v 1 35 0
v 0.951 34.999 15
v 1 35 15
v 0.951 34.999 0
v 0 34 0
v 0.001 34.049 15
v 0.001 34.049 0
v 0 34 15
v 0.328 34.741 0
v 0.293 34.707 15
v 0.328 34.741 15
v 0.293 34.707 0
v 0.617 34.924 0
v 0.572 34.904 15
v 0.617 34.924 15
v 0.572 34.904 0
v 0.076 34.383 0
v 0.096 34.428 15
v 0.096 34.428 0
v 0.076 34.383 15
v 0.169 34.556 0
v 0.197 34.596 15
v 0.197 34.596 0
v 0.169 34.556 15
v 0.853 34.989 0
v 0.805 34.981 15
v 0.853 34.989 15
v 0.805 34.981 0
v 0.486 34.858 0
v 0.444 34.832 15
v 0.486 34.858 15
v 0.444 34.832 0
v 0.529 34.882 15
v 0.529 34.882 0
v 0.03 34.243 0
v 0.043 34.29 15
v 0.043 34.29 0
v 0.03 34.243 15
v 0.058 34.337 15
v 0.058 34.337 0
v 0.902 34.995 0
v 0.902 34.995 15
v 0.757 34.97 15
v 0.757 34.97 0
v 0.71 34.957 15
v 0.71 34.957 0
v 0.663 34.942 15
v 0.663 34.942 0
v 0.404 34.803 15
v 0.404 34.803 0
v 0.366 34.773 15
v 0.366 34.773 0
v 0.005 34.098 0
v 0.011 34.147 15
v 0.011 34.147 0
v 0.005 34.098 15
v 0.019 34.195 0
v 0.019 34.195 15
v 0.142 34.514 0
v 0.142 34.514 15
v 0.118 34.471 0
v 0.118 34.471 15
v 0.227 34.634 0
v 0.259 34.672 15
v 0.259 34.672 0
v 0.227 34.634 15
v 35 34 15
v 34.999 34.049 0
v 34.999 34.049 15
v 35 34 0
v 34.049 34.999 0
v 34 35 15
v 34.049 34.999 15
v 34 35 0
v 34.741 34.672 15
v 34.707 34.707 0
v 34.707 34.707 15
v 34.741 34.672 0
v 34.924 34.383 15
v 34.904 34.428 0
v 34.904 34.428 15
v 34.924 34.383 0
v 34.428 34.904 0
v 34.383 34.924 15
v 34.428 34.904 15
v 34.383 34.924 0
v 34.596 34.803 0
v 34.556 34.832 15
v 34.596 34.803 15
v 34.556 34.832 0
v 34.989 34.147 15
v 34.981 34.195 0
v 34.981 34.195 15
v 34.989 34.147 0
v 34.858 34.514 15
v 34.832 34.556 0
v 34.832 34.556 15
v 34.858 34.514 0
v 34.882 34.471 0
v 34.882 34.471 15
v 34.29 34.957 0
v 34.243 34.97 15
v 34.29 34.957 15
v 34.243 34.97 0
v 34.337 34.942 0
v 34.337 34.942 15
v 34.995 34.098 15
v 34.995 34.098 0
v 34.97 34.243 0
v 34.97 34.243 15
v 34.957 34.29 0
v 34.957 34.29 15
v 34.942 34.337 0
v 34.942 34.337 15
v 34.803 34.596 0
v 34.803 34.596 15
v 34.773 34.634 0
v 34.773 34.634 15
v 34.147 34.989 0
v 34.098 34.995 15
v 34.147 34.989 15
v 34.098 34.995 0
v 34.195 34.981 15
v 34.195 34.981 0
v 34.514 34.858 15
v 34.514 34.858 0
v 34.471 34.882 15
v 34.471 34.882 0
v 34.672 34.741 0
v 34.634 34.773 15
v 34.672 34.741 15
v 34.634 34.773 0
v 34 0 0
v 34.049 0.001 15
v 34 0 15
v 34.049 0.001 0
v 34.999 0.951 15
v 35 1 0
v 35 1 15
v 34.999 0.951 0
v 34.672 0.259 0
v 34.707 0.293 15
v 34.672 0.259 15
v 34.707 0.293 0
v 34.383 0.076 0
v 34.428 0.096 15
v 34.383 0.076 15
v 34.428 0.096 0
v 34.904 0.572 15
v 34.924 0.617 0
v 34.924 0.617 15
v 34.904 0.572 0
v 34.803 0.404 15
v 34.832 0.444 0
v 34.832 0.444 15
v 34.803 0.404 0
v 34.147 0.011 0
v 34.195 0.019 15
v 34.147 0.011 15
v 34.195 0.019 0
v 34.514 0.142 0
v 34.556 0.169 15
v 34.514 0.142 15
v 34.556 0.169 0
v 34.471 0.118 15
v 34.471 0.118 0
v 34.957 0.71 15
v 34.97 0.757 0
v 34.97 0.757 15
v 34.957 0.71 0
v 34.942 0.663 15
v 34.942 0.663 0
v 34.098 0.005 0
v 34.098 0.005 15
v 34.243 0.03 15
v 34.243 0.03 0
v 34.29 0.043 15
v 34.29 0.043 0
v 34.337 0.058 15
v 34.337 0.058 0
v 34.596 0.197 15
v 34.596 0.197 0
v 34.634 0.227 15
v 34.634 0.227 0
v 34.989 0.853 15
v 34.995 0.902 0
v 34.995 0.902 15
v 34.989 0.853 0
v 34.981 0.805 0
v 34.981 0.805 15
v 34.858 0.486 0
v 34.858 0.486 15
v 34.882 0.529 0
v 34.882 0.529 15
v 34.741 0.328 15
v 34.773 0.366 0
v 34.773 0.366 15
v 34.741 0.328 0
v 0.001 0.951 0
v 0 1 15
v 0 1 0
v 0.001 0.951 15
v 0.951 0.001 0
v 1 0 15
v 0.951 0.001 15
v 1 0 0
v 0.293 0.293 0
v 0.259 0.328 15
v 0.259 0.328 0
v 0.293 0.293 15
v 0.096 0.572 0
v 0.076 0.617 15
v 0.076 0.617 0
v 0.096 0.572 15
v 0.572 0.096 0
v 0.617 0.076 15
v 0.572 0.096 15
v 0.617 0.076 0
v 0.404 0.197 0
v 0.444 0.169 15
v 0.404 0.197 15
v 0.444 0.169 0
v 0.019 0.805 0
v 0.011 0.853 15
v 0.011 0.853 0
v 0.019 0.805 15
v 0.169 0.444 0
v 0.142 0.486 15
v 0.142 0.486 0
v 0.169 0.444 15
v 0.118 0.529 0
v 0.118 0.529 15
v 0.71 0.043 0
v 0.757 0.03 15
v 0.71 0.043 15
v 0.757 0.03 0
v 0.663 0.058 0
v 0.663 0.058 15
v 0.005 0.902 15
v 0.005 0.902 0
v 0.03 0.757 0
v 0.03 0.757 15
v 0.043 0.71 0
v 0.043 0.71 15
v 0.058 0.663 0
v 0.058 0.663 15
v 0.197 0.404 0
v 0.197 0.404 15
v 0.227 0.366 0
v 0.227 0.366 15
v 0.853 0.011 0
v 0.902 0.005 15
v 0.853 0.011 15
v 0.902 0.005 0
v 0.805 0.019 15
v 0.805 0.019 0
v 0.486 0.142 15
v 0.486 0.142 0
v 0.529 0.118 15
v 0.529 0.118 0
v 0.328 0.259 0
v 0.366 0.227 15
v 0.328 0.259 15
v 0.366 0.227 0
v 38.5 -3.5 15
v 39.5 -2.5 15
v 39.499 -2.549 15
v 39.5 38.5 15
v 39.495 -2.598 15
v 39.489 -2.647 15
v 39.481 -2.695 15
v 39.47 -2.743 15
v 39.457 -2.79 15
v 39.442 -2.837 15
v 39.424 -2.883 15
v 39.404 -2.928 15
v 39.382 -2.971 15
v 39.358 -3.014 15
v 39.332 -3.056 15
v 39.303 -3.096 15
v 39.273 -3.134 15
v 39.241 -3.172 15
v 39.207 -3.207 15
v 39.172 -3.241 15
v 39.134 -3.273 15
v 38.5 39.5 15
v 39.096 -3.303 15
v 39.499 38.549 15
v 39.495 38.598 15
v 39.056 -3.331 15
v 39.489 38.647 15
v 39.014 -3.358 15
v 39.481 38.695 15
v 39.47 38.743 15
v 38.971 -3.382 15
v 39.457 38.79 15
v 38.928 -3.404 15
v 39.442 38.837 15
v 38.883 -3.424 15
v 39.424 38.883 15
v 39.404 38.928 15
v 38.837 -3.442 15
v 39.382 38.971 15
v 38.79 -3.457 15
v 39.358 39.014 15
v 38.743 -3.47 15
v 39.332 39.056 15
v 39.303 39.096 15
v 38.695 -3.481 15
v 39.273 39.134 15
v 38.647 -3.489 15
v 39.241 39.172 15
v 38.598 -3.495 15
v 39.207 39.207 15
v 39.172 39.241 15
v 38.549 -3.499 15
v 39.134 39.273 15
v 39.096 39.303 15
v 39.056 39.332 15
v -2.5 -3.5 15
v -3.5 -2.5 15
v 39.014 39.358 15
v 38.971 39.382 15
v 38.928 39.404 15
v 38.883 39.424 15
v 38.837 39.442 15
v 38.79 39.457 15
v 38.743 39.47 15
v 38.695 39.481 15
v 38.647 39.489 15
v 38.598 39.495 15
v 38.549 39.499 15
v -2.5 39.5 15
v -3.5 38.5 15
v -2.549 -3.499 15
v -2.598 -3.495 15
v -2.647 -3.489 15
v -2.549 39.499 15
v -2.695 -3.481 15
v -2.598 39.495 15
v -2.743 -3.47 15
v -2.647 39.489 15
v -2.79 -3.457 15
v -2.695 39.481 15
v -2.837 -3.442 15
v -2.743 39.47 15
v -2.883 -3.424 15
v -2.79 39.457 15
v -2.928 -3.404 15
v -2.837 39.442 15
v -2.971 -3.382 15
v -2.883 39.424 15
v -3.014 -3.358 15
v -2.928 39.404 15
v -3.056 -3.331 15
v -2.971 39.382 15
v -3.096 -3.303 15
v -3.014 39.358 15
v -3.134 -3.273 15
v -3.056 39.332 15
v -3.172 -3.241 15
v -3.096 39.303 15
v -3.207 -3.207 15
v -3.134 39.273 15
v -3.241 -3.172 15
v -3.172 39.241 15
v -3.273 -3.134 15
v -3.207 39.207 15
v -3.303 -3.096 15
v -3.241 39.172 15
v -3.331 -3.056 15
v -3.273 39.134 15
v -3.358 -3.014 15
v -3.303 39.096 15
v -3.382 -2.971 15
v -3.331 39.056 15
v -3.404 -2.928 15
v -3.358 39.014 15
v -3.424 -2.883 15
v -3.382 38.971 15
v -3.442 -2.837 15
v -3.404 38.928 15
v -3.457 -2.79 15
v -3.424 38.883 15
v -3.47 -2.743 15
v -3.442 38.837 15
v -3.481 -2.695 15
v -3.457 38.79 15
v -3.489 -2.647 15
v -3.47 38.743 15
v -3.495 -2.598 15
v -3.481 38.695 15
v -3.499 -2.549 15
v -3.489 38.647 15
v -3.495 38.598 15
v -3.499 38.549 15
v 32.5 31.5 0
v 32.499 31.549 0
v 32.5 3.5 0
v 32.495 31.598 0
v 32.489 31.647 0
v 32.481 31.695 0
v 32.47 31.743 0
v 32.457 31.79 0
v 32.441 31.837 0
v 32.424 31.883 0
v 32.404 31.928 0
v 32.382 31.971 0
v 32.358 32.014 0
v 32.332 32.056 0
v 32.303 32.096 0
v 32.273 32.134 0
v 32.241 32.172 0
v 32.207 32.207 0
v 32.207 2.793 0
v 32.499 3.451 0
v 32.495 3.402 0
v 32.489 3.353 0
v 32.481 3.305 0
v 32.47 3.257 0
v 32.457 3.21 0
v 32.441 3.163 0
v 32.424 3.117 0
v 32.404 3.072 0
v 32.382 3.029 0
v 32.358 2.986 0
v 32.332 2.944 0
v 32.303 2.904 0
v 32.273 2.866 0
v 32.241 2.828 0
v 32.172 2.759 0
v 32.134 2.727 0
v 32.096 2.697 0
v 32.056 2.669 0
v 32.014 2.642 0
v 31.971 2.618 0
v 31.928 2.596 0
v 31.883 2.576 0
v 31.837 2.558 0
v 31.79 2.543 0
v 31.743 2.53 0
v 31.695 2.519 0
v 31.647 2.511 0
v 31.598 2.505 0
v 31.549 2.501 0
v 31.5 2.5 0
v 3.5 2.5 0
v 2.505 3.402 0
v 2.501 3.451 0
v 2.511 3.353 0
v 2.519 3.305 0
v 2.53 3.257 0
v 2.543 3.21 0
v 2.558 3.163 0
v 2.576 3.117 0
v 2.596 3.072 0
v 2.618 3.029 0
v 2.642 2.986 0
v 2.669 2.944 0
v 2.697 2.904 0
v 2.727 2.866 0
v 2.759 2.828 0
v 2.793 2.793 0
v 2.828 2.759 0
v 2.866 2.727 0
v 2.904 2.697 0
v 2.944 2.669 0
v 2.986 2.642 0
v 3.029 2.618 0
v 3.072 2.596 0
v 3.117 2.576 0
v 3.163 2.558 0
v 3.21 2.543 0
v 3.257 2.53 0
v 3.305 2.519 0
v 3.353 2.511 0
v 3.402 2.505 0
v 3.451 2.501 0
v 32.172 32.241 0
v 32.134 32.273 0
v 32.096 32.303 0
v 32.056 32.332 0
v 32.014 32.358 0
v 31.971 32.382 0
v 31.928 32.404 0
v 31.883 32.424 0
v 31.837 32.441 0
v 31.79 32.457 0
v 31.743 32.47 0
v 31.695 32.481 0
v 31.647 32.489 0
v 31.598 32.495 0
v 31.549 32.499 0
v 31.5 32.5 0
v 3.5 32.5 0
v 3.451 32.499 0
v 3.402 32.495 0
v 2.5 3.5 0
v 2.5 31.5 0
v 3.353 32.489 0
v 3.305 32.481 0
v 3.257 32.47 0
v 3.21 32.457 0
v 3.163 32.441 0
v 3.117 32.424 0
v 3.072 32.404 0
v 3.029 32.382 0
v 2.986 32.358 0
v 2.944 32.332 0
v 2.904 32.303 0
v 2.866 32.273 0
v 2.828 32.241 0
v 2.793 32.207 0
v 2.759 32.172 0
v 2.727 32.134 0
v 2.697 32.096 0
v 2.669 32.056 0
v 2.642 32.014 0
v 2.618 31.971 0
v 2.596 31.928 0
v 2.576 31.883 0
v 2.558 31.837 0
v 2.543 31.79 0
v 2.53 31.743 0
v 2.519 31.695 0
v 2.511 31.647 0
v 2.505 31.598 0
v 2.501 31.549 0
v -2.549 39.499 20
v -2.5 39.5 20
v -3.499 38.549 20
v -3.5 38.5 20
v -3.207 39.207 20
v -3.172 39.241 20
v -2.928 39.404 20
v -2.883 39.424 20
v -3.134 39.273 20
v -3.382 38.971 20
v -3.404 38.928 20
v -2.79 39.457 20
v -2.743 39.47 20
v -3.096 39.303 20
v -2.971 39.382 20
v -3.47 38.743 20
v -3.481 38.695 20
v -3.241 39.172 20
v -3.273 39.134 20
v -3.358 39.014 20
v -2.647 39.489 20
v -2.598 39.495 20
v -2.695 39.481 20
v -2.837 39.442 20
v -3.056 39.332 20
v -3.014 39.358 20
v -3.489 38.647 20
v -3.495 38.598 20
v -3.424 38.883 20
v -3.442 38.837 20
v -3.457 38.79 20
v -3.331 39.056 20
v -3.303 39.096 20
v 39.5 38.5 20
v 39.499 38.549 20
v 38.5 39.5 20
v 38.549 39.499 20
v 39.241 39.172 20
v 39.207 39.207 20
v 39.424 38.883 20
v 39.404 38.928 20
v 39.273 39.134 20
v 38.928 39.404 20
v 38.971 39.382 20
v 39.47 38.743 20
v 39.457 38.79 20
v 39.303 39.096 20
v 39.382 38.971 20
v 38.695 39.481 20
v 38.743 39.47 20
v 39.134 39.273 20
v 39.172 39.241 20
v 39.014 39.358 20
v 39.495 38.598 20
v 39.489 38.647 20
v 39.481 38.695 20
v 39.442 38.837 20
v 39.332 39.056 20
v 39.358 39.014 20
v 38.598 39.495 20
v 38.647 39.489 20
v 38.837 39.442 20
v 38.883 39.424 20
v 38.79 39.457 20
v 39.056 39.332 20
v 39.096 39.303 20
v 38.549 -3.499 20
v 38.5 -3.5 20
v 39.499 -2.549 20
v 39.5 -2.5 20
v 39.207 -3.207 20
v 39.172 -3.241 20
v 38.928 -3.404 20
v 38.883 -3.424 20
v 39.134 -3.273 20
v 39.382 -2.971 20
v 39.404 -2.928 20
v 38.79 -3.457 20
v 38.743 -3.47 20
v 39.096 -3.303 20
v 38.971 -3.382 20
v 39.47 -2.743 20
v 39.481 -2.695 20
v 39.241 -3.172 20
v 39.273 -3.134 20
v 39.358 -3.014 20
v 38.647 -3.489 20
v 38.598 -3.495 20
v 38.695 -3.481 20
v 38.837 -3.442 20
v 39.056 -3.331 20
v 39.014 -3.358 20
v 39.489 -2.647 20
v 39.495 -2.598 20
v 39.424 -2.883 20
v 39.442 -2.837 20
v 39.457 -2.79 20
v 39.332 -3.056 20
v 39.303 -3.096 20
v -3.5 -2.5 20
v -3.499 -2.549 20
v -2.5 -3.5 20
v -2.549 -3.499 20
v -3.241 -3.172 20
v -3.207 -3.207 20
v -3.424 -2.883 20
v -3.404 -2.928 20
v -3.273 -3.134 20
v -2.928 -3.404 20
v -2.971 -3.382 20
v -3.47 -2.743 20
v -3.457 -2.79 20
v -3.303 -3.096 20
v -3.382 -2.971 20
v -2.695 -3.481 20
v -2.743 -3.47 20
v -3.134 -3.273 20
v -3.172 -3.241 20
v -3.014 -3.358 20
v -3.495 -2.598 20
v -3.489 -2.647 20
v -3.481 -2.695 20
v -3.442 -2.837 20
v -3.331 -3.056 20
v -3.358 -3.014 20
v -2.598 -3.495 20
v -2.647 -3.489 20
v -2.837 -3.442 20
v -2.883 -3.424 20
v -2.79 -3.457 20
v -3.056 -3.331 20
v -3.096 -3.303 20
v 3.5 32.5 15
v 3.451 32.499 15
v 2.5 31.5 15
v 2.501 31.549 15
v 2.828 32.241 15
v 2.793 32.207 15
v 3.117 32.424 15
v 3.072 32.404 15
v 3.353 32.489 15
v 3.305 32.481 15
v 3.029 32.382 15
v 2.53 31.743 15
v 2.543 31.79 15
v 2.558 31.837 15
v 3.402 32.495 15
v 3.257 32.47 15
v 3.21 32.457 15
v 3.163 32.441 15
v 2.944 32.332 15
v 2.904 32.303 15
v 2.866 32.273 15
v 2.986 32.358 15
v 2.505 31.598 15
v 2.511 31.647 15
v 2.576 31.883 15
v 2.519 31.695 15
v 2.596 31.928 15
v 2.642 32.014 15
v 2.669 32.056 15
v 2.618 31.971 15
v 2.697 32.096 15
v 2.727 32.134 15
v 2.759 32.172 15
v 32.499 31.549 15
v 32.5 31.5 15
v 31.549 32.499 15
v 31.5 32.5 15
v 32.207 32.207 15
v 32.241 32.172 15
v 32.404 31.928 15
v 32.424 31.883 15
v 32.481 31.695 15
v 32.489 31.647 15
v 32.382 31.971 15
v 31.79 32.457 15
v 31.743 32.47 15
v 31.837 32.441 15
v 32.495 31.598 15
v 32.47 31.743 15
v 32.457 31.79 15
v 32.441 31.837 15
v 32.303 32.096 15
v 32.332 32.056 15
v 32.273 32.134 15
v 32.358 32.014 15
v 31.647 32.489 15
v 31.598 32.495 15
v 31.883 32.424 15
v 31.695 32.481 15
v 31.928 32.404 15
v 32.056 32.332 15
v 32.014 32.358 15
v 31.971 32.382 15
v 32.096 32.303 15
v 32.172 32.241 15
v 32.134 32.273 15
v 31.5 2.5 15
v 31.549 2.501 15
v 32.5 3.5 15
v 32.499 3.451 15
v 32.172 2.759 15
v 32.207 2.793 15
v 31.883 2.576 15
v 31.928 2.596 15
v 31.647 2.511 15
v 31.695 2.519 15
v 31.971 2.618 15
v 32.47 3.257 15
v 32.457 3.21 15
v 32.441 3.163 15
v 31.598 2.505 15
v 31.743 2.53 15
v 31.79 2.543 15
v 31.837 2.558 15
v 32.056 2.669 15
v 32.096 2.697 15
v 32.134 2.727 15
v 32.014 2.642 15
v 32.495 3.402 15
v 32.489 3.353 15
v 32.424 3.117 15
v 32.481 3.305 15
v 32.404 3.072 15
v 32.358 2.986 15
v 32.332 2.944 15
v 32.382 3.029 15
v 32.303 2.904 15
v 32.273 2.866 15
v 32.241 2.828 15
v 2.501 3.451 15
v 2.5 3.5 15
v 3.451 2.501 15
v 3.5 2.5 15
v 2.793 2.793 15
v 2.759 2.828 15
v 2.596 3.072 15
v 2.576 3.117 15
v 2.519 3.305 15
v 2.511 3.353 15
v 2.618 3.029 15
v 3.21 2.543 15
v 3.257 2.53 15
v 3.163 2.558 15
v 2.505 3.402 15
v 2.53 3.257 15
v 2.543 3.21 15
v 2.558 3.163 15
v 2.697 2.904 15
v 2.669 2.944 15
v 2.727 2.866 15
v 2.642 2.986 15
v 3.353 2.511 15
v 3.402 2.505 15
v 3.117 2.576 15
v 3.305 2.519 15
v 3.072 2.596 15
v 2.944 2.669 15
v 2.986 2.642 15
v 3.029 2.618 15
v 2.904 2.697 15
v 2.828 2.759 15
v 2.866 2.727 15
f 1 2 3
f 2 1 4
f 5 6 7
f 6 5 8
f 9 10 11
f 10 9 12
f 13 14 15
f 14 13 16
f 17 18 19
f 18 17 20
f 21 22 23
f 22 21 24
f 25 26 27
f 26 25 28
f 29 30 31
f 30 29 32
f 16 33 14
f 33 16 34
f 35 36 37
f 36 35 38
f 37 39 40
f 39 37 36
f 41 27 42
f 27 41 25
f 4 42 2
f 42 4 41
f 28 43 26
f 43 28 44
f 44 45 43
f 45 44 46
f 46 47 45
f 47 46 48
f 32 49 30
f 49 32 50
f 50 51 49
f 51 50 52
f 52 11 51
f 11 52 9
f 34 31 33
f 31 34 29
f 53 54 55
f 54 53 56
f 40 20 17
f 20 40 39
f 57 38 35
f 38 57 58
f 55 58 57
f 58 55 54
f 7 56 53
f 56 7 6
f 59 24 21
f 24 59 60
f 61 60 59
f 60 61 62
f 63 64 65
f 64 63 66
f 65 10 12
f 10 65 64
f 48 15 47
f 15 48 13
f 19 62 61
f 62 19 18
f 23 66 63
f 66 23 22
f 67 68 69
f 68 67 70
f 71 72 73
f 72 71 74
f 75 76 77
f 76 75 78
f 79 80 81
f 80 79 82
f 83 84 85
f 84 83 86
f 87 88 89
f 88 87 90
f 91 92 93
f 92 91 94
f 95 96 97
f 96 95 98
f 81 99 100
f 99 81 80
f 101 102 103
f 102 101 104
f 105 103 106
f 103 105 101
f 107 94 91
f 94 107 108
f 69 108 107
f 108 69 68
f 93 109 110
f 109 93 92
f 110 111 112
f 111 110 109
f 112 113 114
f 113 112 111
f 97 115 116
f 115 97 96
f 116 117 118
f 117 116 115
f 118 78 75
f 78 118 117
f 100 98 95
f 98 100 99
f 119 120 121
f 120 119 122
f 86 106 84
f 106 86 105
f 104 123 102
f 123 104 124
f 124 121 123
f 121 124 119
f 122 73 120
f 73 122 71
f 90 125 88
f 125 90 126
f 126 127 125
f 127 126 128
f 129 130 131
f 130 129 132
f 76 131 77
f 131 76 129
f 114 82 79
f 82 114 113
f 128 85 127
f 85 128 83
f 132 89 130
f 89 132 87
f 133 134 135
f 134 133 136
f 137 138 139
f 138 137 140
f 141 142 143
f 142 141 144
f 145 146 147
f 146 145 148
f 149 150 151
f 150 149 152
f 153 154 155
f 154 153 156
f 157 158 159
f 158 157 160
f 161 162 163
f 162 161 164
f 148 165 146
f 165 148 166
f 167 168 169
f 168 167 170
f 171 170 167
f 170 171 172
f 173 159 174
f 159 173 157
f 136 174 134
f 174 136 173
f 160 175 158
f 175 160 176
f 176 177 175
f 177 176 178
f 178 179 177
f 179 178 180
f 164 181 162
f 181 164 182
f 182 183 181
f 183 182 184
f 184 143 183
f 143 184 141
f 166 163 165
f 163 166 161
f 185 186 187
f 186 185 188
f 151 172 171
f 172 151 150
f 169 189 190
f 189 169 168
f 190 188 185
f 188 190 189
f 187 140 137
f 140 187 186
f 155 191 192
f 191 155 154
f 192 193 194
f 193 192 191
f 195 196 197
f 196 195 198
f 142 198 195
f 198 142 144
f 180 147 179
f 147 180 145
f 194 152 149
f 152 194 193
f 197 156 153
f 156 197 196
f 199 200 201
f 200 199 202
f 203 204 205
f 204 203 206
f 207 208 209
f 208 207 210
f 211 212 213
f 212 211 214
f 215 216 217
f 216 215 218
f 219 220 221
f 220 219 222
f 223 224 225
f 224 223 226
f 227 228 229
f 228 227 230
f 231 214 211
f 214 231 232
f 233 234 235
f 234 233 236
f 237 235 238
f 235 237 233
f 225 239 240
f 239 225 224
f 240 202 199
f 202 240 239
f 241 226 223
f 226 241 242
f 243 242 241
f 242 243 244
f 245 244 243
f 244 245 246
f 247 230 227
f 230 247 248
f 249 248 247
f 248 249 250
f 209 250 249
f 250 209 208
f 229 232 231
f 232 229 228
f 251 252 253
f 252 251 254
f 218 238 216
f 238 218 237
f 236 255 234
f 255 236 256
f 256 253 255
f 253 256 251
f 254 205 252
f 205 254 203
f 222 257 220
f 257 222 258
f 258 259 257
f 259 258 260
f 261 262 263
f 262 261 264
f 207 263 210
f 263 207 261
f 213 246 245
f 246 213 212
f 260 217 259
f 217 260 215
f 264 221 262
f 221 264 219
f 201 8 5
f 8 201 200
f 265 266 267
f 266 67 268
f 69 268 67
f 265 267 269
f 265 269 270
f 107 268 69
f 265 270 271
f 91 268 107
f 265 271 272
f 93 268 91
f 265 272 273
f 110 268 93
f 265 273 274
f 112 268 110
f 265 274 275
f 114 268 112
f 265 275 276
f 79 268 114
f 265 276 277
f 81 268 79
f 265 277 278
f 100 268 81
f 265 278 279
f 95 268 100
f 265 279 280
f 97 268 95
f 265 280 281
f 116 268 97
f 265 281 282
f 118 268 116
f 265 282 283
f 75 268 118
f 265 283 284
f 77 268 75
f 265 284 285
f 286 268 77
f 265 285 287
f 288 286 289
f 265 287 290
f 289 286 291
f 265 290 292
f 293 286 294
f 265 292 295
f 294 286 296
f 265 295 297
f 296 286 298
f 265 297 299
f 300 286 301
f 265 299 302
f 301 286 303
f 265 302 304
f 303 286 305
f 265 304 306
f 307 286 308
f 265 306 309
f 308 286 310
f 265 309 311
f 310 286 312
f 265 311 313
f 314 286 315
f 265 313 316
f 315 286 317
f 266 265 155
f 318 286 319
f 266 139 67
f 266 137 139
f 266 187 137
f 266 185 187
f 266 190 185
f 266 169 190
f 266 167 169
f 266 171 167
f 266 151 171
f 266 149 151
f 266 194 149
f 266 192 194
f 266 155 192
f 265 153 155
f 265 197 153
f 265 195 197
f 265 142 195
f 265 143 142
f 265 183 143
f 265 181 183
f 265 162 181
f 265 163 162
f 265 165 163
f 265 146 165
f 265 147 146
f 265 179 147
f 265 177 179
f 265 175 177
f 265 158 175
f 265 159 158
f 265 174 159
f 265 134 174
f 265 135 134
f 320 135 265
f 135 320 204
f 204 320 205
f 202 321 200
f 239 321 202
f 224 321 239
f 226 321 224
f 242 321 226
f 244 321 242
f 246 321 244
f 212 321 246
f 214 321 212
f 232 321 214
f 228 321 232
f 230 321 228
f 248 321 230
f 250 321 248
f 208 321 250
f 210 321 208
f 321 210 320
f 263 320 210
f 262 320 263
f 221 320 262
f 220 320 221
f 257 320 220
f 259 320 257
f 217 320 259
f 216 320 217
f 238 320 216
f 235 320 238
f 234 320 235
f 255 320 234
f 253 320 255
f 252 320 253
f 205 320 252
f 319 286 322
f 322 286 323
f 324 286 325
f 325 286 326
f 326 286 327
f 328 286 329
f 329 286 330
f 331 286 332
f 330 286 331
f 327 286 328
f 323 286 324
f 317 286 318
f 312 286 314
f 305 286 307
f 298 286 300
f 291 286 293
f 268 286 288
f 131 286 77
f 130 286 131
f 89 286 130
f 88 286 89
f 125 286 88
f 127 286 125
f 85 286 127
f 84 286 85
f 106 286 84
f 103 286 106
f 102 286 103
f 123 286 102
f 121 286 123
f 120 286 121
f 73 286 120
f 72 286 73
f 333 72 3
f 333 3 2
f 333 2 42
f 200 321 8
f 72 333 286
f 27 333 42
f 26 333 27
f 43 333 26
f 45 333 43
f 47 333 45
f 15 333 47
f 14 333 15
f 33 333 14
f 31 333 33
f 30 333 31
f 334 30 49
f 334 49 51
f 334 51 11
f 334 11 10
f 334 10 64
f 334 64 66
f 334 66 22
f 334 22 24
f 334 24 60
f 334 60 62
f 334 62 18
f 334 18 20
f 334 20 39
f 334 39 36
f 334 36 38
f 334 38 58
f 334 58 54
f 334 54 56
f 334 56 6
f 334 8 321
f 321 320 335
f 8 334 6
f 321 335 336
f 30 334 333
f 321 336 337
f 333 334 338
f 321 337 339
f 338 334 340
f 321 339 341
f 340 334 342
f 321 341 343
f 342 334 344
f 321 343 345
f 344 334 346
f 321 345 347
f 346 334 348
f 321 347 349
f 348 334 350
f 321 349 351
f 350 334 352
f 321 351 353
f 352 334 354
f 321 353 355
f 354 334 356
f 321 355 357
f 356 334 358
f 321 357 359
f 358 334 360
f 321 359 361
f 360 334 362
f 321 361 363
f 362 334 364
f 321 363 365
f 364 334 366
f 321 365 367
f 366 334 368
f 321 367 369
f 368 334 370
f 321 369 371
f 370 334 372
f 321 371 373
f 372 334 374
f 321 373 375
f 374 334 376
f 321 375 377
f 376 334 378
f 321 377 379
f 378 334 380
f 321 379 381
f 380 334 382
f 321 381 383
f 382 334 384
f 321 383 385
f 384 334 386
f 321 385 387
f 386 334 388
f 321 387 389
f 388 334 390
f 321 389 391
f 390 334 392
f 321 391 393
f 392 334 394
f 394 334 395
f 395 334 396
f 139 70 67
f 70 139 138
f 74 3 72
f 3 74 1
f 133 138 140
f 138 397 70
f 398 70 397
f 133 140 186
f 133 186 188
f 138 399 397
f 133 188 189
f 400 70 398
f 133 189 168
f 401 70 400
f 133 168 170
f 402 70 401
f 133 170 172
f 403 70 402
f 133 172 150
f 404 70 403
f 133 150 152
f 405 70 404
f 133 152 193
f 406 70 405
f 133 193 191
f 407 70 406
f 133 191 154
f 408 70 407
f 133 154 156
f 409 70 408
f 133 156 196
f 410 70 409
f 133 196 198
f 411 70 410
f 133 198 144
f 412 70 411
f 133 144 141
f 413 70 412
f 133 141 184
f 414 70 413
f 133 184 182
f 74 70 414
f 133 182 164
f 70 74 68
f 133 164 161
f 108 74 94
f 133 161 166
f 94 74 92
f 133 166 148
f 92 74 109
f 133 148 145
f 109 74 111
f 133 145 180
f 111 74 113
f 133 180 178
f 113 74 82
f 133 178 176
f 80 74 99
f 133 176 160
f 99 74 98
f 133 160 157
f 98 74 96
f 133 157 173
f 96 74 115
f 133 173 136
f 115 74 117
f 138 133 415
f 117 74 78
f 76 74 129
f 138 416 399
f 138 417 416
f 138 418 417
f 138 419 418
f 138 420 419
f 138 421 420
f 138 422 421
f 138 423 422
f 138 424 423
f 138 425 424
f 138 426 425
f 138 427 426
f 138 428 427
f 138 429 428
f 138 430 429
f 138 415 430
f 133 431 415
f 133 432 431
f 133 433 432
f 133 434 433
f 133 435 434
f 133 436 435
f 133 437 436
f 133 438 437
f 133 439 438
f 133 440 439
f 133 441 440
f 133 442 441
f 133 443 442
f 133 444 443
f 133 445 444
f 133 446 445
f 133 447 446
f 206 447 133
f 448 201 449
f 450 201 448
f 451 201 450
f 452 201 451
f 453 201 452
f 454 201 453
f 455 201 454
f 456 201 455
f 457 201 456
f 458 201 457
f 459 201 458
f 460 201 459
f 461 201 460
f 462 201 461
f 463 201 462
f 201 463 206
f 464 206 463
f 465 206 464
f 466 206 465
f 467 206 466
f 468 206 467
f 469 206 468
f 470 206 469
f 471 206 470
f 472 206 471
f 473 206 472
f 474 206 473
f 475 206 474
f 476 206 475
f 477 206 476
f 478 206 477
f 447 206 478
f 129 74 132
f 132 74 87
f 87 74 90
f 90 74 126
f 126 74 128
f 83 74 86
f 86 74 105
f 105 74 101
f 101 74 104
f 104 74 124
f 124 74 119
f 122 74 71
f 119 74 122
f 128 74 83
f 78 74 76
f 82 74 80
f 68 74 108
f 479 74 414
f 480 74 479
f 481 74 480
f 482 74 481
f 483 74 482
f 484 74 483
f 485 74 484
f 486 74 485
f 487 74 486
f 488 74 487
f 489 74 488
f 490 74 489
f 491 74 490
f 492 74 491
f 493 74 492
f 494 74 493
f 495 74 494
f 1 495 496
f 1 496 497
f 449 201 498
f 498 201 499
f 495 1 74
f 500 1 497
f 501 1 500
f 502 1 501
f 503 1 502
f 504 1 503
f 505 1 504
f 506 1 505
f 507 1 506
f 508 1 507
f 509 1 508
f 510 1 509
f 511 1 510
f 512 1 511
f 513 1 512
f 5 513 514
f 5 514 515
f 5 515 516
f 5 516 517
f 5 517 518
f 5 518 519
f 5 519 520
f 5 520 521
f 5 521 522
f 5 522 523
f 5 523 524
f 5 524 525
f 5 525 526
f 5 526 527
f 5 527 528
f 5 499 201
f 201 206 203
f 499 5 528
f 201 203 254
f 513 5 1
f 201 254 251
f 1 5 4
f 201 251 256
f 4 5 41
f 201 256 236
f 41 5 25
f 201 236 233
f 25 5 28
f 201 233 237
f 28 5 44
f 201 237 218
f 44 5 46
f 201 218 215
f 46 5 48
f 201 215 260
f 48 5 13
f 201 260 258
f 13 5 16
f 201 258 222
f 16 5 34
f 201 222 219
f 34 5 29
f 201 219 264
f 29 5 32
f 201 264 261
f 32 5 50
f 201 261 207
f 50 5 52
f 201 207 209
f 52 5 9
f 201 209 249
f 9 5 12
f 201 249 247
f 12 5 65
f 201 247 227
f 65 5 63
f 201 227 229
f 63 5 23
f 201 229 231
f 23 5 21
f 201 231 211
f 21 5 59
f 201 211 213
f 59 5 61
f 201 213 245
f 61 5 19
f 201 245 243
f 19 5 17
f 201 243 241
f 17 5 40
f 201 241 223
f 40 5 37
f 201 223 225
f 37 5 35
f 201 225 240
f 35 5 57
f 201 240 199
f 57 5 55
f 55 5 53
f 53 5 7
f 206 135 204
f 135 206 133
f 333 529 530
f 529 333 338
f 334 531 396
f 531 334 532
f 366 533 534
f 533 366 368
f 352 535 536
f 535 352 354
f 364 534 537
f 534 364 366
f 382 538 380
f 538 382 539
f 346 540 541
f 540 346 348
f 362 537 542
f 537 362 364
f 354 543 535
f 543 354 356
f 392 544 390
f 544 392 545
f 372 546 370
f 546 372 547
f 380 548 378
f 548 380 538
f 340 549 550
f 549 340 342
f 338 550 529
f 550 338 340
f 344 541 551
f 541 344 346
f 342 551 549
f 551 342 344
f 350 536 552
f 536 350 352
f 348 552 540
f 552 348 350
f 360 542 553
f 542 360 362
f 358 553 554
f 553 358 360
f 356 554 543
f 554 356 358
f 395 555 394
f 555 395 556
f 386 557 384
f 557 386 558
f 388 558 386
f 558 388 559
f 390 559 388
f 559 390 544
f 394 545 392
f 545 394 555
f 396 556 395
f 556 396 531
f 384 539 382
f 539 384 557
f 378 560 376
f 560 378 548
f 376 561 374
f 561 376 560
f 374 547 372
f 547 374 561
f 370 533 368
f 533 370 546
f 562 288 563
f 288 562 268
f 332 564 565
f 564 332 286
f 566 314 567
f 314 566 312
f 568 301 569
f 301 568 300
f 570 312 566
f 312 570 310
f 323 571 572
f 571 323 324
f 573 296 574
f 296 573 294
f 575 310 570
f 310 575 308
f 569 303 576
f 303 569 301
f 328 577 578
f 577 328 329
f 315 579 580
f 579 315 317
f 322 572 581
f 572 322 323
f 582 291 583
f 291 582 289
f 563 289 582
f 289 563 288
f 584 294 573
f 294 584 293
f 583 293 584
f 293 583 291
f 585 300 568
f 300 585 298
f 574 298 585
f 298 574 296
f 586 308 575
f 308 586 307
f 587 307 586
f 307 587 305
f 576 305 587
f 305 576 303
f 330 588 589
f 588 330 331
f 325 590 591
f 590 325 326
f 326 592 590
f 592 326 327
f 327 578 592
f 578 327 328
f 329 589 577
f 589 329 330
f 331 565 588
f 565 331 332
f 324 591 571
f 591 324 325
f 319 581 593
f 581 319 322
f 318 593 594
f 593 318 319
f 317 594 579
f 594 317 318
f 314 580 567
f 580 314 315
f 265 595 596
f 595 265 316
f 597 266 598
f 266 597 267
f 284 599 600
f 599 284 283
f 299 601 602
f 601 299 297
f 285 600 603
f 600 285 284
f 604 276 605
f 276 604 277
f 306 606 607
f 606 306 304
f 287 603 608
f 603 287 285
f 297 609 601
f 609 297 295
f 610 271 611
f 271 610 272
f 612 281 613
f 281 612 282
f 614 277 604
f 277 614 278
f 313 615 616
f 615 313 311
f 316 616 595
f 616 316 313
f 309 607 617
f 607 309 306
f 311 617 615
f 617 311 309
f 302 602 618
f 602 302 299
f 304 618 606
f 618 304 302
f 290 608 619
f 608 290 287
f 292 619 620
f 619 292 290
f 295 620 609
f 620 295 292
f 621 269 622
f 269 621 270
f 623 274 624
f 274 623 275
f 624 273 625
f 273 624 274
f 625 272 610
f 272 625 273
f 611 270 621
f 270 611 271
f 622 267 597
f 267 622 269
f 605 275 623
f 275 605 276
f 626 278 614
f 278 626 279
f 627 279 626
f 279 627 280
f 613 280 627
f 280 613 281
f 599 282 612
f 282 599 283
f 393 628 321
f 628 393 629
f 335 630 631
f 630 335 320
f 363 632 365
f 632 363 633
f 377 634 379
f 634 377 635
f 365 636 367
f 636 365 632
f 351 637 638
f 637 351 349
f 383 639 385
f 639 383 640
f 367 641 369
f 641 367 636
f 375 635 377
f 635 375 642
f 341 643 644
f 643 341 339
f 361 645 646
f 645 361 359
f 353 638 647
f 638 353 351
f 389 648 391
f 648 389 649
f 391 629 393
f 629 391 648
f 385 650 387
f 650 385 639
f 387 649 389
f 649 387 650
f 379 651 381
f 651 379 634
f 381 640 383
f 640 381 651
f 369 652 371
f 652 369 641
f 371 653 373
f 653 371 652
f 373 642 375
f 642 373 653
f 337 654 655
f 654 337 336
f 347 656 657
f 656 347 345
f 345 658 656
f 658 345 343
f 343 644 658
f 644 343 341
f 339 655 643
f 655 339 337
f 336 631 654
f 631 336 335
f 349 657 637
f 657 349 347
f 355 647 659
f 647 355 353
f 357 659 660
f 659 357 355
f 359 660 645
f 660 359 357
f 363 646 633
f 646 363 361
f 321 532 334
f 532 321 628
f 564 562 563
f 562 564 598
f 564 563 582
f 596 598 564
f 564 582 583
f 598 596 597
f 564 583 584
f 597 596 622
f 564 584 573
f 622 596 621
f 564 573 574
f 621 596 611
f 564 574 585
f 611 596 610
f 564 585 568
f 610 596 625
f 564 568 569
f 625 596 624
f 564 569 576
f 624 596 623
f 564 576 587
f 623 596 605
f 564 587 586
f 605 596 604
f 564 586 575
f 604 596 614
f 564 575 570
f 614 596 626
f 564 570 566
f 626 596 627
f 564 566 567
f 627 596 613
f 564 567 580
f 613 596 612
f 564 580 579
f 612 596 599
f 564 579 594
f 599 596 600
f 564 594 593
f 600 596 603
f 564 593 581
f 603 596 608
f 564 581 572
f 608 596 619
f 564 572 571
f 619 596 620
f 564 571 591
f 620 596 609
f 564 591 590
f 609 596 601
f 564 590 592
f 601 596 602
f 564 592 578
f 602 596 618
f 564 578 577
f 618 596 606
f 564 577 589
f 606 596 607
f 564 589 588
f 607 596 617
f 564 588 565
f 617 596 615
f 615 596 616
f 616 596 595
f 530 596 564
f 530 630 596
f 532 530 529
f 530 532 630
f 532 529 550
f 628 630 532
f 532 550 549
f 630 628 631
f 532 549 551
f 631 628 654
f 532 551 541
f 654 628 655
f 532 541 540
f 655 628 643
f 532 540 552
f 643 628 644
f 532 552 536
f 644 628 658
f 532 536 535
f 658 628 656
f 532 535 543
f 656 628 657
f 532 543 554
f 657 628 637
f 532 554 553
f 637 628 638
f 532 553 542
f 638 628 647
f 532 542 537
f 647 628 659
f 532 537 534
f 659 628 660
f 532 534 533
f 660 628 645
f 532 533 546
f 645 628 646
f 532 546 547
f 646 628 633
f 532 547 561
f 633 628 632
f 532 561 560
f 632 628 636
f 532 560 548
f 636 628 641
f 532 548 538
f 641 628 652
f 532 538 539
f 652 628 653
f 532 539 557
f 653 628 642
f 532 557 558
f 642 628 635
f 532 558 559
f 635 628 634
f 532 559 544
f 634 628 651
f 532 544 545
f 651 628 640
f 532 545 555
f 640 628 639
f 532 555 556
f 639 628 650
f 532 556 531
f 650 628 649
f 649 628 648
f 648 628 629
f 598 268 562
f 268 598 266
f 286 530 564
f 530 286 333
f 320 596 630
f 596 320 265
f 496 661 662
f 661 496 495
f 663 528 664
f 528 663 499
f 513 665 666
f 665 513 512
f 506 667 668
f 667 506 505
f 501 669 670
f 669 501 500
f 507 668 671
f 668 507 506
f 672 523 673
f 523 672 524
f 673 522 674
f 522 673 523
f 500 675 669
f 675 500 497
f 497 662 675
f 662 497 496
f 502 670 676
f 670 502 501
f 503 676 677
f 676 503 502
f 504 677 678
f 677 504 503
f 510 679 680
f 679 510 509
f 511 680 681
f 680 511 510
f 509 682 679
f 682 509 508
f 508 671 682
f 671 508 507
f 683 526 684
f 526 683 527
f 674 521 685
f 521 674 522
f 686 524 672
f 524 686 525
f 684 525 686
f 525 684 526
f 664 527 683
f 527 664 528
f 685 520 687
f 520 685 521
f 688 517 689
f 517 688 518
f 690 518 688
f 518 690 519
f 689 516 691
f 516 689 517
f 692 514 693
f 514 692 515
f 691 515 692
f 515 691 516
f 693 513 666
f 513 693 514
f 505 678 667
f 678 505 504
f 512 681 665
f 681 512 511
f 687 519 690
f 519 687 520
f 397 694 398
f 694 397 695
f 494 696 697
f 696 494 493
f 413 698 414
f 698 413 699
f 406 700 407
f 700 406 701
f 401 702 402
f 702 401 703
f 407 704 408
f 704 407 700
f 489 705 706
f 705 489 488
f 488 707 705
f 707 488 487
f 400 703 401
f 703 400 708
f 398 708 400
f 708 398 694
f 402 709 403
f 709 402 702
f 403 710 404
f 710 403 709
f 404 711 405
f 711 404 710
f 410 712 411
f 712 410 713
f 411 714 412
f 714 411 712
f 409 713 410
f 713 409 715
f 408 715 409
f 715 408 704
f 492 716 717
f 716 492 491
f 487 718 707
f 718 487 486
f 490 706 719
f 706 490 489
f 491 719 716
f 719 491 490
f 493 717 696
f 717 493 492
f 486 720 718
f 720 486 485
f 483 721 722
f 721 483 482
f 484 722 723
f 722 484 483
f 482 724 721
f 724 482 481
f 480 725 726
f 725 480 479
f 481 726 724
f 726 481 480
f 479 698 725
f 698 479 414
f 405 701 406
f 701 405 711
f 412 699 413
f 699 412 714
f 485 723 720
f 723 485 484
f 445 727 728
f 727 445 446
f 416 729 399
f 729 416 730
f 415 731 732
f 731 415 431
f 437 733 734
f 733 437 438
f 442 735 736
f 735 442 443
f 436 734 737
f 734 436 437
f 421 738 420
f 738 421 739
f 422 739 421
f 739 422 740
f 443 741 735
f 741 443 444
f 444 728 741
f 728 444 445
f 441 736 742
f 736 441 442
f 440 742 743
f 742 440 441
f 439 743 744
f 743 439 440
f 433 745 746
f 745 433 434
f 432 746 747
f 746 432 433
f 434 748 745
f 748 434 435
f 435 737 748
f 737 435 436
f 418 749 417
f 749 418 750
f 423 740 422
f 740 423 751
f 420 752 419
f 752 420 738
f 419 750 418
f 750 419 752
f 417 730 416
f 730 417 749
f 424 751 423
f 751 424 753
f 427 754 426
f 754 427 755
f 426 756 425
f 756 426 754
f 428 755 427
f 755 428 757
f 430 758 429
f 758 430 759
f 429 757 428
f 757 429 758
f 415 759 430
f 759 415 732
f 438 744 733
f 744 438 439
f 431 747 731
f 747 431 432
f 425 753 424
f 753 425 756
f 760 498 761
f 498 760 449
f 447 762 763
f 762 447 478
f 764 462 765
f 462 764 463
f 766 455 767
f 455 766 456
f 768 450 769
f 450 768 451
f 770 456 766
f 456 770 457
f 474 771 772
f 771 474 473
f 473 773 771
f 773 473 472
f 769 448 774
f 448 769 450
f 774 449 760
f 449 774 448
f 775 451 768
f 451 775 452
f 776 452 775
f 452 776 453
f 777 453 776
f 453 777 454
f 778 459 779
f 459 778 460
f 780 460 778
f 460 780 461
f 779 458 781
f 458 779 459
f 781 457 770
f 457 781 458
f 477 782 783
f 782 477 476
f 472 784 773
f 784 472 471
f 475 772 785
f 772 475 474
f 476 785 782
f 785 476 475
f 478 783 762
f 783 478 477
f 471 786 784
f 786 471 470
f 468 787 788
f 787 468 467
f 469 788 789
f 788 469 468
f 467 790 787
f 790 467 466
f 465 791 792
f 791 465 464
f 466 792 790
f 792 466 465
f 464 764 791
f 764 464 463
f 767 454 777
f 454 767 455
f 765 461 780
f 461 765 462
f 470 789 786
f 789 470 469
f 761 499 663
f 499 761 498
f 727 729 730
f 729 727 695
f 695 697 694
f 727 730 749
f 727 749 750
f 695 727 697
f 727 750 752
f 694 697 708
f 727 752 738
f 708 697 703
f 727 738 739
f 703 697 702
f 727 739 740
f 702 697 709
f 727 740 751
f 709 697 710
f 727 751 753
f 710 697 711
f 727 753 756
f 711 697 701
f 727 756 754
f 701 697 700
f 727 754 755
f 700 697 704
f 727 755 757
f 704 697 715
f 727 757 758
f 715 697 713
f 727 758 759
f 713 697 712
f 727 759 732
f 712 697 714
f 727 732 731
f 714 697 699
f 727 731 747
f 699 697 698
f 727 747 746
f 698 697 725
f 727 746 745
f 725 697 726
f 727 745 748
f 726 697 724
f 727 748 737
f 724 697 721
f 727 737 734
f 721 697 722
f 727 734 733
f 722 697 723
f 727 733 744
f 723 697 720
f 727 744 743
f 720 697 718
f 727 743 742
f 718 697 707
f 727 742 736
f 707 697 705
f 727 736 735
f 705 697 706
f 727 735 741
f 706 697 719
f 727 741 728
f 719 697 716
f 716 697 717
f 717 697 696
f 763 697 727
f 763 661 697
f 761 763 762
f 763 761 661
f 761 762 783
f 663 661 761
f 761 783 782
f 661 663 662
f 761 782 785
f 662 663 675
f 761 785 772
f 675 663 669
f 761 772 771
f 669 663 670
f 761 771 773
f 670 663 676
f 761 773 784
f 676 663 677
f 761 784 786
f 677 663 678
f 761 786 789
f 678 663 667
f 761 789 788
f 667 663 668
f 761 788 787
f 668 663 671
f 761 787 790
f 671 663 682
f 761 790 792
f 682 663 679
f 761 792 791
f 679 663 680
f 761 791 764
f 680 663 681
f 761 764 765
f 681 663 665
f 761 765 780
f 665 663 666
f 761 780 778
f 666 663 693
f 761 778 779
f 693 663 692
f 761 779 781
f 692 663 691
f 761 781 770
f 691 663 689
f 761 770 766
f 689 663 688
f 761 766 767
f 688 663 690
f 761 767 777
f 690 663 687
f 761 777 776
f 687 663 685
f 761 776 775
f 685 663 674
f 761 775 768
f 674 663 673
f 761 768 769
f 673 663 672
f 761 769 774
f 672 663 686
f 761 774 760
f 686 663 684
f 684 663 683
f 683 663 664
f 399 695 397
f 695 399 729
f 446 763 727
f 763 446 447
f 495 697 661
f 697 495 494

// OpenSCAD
h=15;
difference(){
union(){
translate([0,0,0]) roundedCube([35,35,h],r=1);
translate([-7/2,-7/2,h]) roundedCube([43,43,5],r=1);
//translate([(-7/2)+(35/3),(-7/2)+(35/3),h+5]) #text("PAR");
}
translate([5/2,5/2,-1]) roundedCube([30,30,h+1],r=1);
}



module roundedCube(dim, r=1, x=false, y=false, z=true, xcorners=[true,true,true,true], ycorners=[true,true,true,true], zcorners=[true,true,true,true], $fn=128)
{
	difference()
	{
		cube(dim);

		if(z)
		{
			translate([0, 0, -0.1])
			{
				if(zcorners[0])
					translate([0, dim[1]-r]) { rotateAround([0, 0, 90], [r/2, r/2, 0]) { meniscus(h=dim[2], r=r, fn=$fn); } }
				if(zcorners[1])
					translate([dim[0]-r, dim[1]-r]) { meniscus(h=dim[2], r=r, fn=$fn); }
				if(zcorners[2])
					translate([dim[0]-r, 0]) { rotateAround([0, 0, -90], [r/2, r/2, 0]) { meniscus(h=dim[2], r=r, fn=$fn); } }
				if(zcorners[3])
					rotateAround([0, 0, -180], [r/2, r/2, 0]) { meniscus(h=dim[2], r=r, fn=$fn); }
			}
		}

		if(y)
		{
			translate([0, -0.1, 0])
			{
				if(ycorners[0])
					translate([0, 0, dim[2]-r]) { rotateAround([0, 180, 0], [r/2, 0, r/2]) { rotateAround([-90, 0, 0], [0, r/2, r/2]) { meniscus(h=dim[1], r=r); } } }
				if(ycorners[1])
					translate([dim[0]-r, 0, dim[2]-r]) { rotateAround([0, -90, 0], [r/2, 0, r/2]) { rotateAround([-90, 0, 0], [0, r/2, r/2]) { meniscus(h=dim[1], r=r); } } }
				if(ycorners[2])
					translate([dim[0]-r, 0]) { rotateAround([-90, 0, 0], [0, r/2, r/2]) { meniscus(h=dim[1], r=r); } }
				if(ycorners[3])
					rotateAround([0, 90, 0], [r/2, 0, r/2]) { rotateAround([-90, 0, 0], [0, r/2, r/2]) { meniscus(h=dim[1], r=r); } }
			}
		}

		if(x)
		{
			translate([-0.1, 0, 0])
			{
				if(xcorners[0])
					translate([0, dim[1]-r]) { rotateAround([0, 90, 0], [r/2, 0, r/2]) { meniscus(h=dim[1], r=r); } }
				if(xcorners[1])
					translate([0, dim[1]-r, dim[2]-r]) { rotateAround([90, 0, 0], [0, r/2, r/2]) { rotateAround([0, 90, 0], [r/2, 0, r/2]) { meniscus(h=dim[1], r=r); } } }
				if(xcorners[2])
					translate([0, 0, dim[2]-r]) { rotateAround([180, 0, 0], [0, r/2, r/2]) { rotateAround([0, 90, 0], [r/2, 0, r/2]) { meniscus(h=dim[1], r=r); } } }
				if(xcorners[3])
					rotateAround([-90, 0, 0], [0, r/2, r/2]) { rotateAround([0, 90, 0], [r/2, 0, r/2]) { meniscus(h=dim[1], r=r); } }
			}
		}
	}
}

module meniscus(h, r, fn=128)
{
	$fn=fn;

	difference()
	{
		cube([r+0.2, r+0.2, h+0.2]);
		translate([0, 0, -0.1]) { cylinder(h=h+0.4, r=r); }
	}
}

module rotateAround(a, v) { translate(v) { rotate(a) { translate(-v) { children(); } } } }
